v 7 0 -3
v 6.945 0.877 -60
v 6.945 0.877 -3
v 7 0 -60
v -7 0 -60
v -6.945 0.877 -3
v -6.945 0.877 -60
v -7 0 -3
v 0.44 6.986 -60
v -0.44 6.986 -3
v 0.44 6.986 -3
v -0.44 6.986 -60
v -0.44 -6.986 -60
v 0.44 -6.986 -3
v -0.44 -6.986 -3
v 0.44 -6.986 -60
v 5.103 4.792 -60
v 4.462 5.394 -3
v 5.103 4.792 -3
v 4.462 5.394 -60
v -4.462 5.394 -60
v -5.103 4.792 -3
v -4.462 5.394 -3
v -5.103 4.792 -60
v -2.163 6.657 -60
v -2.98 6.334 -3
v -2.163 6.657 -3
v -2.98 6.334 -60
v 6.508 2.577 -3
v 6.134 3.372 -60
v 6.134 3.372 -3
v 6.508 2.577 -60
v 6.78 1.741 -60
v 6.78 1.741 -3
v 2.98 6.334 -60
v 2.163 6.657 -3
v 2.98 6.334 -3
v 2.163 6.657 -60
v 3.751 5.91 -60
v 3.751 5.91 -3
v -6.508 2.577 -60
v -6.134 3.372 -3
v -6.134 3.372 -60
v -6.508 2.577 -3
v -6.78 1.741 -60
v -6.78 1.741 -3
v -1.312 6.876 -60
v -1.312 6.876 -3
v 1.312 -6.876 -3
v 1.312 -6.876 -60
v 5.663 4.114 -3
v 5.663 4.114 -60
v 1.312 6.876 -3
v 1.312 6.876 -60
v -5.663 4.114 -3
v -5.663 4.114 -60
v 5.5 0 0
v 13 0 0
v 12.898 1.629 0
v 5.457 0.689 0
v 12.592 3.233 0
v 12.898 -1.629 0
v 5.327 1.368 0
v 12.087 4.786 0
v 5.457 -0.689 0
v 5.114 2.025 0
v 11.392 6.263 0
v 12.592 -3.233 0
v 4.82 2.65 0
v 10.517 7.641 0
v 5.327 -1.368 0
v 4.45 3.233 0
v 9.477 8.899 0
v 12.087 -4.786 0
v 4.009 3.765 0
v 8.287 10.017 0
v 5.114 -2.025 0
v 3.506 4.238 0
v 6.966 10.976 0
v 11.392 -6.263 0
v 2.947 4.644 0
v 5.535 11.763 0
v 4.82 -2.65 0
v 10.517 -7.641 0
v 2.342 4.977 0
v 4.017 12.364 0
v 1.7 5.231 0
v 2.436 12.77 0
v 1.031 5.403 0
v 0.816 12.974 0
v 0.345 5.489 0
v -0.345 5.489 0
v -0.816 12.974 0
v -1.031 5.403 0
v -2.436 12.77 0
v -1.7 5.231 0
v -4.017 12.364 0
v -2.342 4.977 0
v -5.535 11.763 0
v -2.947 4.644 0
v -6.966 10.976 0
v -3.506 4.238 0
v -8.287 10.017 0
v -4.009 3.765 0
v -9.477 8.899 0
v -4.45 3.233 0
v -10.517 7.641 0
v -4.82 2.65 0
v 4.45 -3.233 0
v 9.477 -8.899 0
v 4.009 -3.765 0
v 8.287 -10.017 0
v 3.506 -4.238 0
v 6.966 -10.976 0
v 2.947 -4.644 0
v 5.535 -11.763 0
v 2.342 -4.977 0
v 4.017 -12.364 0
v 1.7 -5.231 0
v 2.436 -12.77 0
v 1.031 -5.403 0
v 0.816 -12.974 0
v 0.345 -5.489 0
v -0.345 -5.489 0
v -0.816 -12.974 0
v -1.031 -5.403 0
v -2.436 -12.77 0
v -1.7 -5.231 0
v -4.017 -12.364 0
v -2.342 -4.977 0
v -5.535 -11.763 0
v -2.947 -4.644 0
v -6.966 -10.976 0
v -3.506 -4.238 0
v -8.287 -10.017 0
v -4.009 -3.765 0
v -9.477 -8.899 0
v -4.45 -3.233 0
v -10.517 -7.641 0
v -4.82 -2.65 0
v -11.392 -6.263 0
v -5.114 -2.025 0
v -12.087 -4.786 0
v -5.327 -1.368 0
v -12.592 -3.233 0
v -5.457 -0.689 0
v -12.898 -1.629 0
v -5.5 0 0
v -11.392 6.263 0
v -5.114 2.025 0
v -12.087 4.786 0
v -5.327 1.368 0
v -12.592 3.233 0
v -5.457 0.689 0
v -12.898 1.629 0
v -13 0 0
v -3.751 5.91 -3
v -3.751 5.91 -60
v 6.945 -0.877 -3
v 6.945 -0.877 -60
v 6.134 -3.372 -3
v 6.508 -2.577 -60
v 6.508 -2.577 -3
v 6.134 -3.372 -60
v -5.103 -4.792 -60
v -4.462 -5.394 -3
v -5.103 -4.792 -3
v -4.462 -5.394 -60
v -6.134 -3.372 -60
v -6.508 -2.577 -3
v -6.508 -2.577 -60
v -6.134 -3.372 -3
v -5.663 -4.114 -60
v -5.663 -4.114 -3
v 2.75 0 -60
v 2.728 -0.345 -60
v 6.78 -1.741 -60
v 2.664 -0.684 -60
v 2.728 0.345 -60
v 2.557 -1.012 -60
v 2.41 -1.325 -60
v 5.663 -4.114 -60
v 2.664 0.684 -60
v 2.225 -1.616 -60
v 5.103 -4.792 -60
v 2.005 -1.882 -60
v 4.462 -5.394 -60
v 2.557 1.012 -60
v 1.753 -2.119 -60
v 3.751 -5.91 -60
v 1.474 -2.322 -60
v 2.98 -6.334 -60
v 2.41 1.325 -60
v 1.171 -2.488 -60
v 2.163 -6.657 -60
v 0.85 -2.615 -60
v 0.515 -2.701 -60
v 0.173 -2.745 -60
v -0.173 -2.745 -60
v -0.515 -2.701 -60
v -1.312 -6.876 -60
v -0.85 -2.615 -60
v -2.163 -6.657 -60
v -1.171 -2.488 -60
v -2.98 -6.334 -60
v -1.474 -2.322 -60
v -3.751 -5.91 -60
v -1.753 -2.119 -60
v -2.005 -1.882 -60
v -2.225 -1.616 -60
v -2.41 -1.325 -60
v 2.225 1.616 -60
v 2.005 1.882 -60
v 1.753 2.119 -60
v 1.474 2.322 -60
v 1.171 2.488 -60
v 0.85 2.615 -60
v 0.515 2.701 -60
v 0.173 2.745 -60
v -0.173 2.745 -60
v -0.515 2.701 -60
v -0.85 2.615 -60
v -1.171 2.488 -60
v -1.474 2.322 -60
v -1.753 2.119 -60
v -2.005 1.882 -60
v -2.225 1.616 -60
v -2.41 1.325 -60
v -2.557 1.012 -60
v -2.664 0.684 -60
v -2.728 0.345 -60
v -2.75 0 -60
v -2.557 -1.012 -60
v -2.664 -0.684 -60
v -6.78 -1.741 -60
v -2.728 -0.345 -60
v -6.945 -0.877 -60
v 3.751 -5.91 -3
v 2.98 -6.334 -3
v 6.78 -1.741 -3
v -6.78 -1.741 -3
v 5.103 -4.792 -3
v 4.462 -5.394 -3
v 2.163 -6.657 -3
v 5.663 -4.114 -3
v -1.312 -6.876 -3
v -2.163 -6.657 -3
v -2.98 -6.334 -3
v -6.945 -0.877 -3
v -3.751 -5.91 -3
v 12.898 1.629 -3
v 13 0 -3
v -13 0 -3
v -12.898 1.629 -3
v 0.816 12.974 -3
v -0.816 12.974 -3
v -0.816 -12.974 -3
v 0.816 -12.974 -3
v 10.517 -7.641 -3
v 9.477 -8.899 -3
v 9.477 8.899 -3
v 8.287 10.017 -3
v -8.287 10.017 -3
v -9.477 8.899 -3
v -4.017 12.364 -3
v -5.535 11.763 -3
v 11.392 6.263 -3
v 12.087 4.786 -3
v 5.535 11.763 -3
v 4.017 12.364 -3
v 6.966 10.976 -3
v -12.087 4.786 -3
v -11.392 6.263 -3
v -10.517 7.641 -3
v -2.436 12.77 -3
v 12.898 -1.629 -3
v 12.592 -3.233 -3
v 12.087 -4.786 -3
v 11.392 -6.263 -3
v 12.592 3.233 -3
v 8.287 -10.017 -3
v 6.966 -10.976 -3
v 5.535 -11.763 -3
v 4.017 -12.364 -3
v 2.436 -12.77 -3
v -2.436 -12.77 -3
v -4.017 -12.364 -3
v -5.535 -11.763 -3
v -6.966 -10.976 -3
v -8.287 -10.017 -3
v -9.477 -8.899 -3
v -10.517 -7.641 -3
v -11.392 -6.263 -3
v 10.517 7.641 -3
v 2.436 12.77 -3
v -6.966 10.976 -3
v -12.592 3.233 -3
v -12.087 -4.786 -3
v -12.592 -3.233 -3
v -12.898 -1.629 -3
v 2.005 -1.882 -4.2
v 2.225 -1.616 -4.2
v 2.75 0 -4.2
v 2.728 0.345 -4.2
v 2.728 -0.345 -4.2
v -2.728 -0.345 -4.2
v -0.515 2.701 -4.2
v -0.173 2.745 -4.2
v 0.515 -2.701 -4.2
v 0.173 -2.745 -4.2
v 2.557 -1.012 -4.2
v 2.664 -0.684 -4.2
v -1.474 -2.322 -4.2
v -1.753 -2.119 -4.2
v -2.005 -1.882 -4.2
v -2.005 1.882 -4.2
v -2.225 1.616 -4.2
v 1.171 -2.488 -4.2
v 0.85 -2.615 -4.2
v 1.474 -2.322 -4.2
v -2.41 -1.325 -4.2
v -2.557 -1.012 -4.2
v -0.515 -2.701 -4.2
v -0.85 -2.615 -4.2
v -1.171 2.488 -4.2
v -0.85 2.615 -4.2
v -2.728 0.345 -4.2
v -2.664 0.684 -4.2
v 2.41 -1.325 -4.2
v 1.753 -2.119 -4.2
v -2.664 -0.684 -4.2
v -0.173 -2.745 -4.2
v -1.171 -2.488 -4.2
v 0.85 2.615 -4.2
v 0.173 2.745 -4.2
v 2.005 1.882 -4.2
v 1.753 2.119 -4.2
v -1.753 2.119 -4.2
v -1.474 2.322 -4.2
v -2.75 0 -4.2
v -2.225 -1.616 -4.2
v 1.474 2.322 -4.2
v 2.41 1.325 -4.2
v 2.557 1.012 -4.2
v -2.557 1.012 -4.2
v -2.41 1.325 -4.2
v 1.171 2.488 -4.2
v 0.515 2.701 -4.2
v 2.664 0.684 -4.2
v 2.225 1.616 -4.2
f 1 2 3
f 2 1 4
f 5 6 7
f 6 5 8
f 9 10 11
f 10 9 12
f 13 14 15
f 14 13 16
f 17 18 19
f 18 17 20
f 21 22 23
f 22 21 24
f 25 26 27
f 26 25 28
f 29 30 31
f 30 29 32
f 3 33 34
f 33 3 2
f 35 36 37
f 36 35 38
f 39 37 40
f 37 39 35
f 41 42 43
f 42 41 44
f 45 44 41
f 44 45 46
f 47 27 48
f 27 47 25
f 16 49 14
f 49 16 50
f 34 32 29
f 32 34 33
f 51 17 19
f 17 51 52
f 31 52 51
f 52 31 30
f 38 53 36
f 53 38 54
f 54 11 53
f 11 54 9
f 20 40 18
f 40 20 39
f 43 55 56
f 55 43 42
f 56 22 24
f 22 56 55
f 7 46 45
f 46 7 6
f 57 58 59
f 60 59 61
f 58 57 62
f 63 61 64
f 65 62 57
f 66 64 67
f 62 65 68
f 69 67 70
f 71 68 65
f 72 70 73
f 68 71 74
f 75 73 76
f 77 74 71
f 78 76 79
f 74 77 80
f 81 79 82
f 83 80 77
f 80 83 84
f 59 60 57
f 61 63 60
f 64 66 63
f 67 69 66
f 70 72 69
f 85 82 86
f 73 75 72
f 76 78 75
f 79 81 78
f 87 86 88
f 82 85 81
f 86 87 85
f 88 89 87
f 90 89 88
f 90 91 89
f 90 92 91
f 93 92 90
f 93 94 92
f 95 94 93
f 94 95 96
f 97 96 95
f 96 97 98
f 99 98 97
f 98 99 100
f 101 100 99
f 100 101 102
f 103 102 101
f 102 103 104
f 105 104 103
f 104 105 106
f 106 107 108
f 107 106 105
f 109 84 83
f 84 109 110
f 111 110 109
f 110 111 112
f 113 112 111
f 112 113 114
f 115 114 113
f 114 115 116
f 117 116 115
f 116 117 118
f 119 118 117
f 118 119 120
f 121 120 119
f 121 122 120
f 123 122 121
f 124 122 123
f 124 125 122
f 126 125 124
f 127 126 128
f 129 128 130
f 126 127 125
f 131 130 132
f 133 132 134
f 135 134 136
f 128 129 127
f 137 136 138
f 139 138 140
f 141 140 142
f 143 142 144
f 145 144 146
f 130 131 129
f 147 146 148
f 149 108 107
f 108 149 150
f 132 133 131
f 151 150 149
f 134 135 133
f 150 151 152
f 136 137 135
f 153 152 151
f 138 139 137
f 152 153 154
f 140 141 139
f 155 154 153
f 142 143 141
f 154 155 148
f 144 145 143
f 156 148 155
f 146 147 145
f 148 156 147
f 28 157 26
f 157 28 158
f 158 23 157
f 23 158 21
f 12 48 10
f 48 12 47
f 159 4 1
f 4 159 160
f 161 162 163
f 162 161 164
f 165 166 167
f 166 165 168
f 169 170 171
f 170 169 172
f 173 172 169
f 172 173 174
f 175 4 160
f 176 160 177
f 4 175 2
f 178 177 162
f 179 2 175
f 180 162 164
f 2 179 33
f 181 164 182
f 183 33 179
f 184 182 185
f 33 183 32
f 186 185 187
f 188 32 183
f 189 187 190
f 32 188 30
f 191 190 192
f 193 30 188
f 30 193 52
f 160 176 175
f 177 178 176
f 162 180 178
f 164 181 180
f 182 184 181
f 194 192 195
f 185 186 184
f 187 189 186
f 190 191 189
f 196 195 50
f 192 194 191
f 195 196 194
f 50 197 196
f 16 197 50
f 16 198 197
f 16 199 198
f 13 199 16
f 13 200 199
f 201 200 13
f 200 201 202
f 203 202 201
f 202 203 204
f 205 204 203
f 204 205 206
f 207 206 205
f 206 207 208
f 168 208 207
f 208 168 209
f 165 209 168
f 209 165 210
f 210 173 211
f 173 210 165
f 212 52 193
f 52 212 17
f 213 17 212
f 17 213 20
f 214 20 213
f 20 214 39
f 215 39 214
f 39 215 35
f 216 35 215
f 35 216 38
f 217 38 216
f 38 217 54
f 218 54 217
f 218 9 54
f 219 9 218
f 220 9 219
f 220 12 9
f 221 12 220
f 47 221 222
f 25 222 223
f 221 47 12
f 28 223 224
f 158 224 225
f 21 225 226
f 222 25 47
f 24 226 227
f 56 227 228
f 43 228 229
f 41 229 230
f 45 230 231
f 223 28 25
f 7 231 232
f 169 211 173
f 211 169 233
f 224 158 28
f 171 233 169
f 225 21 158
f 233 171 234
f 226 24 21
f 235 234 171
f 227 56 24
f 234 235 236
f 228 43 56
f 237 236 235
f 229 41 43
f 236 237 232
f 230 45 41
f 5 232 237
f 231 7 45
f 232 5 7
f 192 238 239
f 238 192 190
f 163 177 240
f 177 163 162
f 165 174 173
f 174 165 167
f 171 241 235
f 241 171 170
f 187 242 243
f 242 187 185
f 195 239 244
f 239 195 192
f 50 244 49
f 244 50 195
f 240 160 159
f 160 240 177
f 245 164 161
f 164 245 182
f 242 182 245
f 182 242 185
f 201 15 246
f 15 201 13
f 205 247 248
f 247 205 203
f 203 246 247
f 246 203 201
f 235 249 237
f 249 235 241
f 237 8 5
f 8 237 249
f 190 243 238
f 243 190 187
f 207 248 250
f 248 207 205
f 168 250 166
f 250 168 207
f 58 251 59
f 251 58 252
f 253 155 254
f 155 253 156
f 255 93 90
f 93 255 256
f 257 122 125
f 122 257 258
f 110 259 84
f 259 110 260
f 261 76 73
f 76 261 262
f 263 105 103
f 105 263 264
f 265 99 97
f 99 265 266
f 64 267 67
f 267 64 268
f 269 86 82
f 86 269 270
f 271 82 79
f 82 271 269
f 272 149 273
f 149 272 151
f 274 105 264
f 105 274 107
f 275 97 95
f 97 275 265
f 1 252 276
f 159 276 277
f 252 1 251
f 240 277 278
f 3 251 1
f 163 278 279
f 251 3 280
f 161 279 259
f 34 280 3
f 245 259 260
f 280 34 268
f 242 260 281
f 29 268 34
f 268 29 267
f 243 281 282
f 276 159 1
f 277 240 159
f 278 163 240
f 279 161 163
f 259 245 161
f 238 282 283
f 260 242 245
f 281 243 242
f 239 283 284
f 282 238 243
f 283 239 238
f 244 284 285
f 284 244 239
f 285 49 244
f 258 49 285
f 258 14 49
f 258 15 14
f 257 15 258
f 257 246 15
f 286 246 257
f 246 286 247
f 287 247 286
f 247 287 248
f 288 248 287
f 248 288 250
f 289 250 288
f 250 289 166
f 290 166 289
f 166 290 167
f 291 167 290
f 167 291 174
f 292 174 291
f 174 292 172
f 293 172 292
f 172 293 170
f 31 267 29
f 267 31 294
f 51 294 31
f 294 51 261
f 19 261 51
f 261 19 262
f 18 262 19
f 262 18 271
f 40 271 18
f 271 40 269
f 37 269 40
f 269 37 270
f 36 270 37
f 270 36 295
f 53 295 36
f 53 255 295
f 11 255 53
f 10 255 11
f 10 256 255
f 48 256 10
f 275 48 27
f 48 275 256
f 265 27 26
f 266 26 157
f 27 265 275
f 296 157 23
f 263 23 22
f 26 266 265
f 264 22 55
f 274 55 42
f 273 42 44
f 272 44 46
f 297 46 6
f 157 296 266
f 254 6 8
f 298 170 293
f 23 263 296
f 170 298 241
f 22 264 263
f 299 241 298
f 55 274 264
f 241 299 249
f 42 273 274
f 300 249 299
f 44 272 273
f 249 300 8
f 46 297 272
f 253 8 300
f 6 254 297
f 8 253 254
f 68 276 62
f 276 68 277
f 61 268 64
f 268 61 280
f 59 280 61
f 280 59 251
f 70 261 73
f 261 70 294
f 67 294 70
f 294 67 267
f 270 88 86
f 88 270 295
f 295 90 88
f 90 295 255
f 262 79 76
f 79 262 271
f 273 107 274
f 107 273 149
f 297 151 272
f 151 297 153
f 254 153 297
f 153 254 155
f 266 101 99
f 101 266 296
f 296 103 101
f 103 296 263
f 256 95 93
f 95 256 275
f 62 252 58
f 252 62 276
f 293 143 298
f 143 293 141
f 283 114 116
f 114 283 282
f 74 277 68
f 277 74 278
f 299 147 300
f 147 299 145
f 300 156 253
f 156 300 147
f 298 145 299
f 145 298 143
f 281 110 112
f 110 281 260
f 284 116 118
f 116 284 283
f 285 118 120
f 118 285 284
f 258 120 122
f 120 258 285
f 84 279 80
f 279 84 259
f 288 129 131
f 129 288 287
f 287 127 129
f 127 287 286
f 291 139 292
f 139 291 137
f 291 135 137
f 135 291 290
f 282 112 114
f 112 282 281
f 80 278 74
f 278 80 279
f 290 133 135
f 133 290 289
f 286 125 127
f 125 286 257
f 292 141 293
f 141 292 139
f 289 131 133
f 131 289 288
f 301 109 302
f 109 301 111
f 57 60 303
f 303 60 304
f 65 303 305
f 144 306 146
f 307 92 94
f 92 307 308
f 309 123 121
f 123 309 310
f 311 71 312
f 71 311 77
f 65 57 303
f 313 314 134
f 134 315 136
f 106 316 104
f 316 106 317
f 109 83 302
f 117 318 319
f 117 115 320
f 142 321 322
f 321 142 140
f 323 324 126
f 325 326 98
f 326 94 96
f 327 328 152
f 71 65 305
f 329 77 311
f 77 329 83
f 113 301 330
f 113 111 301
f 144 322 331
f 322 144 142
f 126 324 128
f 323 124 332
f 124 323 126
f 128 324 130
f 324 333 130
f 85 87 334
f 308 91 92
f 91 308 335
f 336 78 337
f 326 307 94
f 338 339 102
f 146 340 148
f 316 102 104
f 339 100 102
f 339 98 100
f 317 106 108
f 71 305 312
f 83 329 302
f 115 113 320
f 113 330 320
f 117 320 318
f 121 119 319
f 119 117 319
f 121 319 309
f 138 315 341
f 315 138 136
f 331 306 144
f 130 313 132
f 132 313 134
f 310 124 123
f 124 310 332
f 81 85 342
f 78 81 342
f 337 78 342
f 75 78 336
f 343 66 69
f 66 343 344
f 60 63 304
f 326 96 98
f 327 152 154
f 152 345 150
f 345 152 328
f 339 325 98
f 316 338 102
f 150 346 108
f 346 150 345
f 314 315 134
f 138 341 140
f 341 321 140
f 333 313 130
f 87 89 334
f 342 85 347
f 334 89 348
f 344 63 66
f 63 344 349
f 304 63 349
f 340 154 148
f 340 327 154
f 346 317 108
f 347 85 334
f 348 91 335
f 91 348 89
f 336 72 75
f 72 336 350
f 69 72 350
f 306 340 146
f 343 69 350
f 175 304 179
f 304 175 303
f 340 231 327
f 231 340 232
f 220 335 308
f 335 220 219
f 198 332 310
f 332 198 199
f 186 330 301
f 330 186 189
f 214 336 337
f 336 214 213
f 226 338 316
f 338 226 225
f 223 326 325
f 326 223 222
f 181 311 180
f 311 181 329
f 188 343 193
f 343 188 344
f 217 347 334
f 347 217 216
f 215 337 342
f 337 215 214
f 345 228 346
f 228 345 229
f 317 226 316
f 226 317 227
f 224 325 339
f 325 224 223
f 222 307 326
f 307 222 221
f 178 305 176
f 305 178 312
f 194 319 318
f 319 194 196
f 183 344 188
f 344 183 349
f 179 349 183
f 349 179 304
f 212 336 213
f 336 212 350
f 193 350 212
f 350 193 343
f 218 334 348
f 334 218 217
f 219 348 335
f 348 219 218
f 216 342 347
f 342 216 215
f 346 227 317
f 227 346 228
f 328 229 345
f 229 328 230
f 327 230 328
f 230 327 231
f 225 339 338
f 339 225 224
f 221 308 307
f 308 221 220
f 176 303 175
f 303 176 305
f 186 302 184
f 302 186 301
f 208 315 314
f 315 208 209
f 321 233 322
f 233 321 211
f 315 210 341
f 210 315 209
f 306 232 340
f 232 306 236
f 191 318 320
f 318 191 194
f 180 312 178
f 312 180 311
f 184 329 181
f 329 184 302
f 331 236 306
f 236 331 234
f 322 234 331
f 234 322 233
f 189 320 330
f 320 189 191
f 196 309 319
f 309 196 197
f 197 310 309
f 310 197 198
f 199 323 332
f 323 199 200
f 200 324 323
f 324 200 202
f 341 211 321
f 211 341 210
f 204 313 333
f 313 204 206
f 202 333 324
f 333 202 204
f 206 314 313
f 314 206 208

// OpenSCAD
$fn = 50;


difference() {
	union() {
		translate(v = [0, 0, -60.0000000000]) {
			cylinder(h = 60, r = 7.0000000000);
		}
		translate(v = [0, 0, -3.0000000000]) {
			cylinder(h = 3, r = 13.0000000000);
		}
	}
	union() {
		translate(v = [0, 0, 0]) {
			rotate(a = [0, 0, 0]) {
				difference() {
					union() {
						#translate(v = [0, 0, -60.0000000000]) {
							cylinder(h = 60, r = 2.2500000000);
						}
						#translate(v = [0, 0, -4.2000000000]) {
							cylinder(h = 4.2000000000, r1 = 2.7500000000, r2 = 5.5000000000);
						}
						#translate(v = [0, 0, -60.0000000000]) {
							cylinder(h = 60, r = 2.7500000000);
						}
						#translate(v = [0, 0, -60.0000000000]) {
							cylinder(h = 60, r = 2.2500000000);
						}
					}
					union();
				}
			}
		}
	}
}
